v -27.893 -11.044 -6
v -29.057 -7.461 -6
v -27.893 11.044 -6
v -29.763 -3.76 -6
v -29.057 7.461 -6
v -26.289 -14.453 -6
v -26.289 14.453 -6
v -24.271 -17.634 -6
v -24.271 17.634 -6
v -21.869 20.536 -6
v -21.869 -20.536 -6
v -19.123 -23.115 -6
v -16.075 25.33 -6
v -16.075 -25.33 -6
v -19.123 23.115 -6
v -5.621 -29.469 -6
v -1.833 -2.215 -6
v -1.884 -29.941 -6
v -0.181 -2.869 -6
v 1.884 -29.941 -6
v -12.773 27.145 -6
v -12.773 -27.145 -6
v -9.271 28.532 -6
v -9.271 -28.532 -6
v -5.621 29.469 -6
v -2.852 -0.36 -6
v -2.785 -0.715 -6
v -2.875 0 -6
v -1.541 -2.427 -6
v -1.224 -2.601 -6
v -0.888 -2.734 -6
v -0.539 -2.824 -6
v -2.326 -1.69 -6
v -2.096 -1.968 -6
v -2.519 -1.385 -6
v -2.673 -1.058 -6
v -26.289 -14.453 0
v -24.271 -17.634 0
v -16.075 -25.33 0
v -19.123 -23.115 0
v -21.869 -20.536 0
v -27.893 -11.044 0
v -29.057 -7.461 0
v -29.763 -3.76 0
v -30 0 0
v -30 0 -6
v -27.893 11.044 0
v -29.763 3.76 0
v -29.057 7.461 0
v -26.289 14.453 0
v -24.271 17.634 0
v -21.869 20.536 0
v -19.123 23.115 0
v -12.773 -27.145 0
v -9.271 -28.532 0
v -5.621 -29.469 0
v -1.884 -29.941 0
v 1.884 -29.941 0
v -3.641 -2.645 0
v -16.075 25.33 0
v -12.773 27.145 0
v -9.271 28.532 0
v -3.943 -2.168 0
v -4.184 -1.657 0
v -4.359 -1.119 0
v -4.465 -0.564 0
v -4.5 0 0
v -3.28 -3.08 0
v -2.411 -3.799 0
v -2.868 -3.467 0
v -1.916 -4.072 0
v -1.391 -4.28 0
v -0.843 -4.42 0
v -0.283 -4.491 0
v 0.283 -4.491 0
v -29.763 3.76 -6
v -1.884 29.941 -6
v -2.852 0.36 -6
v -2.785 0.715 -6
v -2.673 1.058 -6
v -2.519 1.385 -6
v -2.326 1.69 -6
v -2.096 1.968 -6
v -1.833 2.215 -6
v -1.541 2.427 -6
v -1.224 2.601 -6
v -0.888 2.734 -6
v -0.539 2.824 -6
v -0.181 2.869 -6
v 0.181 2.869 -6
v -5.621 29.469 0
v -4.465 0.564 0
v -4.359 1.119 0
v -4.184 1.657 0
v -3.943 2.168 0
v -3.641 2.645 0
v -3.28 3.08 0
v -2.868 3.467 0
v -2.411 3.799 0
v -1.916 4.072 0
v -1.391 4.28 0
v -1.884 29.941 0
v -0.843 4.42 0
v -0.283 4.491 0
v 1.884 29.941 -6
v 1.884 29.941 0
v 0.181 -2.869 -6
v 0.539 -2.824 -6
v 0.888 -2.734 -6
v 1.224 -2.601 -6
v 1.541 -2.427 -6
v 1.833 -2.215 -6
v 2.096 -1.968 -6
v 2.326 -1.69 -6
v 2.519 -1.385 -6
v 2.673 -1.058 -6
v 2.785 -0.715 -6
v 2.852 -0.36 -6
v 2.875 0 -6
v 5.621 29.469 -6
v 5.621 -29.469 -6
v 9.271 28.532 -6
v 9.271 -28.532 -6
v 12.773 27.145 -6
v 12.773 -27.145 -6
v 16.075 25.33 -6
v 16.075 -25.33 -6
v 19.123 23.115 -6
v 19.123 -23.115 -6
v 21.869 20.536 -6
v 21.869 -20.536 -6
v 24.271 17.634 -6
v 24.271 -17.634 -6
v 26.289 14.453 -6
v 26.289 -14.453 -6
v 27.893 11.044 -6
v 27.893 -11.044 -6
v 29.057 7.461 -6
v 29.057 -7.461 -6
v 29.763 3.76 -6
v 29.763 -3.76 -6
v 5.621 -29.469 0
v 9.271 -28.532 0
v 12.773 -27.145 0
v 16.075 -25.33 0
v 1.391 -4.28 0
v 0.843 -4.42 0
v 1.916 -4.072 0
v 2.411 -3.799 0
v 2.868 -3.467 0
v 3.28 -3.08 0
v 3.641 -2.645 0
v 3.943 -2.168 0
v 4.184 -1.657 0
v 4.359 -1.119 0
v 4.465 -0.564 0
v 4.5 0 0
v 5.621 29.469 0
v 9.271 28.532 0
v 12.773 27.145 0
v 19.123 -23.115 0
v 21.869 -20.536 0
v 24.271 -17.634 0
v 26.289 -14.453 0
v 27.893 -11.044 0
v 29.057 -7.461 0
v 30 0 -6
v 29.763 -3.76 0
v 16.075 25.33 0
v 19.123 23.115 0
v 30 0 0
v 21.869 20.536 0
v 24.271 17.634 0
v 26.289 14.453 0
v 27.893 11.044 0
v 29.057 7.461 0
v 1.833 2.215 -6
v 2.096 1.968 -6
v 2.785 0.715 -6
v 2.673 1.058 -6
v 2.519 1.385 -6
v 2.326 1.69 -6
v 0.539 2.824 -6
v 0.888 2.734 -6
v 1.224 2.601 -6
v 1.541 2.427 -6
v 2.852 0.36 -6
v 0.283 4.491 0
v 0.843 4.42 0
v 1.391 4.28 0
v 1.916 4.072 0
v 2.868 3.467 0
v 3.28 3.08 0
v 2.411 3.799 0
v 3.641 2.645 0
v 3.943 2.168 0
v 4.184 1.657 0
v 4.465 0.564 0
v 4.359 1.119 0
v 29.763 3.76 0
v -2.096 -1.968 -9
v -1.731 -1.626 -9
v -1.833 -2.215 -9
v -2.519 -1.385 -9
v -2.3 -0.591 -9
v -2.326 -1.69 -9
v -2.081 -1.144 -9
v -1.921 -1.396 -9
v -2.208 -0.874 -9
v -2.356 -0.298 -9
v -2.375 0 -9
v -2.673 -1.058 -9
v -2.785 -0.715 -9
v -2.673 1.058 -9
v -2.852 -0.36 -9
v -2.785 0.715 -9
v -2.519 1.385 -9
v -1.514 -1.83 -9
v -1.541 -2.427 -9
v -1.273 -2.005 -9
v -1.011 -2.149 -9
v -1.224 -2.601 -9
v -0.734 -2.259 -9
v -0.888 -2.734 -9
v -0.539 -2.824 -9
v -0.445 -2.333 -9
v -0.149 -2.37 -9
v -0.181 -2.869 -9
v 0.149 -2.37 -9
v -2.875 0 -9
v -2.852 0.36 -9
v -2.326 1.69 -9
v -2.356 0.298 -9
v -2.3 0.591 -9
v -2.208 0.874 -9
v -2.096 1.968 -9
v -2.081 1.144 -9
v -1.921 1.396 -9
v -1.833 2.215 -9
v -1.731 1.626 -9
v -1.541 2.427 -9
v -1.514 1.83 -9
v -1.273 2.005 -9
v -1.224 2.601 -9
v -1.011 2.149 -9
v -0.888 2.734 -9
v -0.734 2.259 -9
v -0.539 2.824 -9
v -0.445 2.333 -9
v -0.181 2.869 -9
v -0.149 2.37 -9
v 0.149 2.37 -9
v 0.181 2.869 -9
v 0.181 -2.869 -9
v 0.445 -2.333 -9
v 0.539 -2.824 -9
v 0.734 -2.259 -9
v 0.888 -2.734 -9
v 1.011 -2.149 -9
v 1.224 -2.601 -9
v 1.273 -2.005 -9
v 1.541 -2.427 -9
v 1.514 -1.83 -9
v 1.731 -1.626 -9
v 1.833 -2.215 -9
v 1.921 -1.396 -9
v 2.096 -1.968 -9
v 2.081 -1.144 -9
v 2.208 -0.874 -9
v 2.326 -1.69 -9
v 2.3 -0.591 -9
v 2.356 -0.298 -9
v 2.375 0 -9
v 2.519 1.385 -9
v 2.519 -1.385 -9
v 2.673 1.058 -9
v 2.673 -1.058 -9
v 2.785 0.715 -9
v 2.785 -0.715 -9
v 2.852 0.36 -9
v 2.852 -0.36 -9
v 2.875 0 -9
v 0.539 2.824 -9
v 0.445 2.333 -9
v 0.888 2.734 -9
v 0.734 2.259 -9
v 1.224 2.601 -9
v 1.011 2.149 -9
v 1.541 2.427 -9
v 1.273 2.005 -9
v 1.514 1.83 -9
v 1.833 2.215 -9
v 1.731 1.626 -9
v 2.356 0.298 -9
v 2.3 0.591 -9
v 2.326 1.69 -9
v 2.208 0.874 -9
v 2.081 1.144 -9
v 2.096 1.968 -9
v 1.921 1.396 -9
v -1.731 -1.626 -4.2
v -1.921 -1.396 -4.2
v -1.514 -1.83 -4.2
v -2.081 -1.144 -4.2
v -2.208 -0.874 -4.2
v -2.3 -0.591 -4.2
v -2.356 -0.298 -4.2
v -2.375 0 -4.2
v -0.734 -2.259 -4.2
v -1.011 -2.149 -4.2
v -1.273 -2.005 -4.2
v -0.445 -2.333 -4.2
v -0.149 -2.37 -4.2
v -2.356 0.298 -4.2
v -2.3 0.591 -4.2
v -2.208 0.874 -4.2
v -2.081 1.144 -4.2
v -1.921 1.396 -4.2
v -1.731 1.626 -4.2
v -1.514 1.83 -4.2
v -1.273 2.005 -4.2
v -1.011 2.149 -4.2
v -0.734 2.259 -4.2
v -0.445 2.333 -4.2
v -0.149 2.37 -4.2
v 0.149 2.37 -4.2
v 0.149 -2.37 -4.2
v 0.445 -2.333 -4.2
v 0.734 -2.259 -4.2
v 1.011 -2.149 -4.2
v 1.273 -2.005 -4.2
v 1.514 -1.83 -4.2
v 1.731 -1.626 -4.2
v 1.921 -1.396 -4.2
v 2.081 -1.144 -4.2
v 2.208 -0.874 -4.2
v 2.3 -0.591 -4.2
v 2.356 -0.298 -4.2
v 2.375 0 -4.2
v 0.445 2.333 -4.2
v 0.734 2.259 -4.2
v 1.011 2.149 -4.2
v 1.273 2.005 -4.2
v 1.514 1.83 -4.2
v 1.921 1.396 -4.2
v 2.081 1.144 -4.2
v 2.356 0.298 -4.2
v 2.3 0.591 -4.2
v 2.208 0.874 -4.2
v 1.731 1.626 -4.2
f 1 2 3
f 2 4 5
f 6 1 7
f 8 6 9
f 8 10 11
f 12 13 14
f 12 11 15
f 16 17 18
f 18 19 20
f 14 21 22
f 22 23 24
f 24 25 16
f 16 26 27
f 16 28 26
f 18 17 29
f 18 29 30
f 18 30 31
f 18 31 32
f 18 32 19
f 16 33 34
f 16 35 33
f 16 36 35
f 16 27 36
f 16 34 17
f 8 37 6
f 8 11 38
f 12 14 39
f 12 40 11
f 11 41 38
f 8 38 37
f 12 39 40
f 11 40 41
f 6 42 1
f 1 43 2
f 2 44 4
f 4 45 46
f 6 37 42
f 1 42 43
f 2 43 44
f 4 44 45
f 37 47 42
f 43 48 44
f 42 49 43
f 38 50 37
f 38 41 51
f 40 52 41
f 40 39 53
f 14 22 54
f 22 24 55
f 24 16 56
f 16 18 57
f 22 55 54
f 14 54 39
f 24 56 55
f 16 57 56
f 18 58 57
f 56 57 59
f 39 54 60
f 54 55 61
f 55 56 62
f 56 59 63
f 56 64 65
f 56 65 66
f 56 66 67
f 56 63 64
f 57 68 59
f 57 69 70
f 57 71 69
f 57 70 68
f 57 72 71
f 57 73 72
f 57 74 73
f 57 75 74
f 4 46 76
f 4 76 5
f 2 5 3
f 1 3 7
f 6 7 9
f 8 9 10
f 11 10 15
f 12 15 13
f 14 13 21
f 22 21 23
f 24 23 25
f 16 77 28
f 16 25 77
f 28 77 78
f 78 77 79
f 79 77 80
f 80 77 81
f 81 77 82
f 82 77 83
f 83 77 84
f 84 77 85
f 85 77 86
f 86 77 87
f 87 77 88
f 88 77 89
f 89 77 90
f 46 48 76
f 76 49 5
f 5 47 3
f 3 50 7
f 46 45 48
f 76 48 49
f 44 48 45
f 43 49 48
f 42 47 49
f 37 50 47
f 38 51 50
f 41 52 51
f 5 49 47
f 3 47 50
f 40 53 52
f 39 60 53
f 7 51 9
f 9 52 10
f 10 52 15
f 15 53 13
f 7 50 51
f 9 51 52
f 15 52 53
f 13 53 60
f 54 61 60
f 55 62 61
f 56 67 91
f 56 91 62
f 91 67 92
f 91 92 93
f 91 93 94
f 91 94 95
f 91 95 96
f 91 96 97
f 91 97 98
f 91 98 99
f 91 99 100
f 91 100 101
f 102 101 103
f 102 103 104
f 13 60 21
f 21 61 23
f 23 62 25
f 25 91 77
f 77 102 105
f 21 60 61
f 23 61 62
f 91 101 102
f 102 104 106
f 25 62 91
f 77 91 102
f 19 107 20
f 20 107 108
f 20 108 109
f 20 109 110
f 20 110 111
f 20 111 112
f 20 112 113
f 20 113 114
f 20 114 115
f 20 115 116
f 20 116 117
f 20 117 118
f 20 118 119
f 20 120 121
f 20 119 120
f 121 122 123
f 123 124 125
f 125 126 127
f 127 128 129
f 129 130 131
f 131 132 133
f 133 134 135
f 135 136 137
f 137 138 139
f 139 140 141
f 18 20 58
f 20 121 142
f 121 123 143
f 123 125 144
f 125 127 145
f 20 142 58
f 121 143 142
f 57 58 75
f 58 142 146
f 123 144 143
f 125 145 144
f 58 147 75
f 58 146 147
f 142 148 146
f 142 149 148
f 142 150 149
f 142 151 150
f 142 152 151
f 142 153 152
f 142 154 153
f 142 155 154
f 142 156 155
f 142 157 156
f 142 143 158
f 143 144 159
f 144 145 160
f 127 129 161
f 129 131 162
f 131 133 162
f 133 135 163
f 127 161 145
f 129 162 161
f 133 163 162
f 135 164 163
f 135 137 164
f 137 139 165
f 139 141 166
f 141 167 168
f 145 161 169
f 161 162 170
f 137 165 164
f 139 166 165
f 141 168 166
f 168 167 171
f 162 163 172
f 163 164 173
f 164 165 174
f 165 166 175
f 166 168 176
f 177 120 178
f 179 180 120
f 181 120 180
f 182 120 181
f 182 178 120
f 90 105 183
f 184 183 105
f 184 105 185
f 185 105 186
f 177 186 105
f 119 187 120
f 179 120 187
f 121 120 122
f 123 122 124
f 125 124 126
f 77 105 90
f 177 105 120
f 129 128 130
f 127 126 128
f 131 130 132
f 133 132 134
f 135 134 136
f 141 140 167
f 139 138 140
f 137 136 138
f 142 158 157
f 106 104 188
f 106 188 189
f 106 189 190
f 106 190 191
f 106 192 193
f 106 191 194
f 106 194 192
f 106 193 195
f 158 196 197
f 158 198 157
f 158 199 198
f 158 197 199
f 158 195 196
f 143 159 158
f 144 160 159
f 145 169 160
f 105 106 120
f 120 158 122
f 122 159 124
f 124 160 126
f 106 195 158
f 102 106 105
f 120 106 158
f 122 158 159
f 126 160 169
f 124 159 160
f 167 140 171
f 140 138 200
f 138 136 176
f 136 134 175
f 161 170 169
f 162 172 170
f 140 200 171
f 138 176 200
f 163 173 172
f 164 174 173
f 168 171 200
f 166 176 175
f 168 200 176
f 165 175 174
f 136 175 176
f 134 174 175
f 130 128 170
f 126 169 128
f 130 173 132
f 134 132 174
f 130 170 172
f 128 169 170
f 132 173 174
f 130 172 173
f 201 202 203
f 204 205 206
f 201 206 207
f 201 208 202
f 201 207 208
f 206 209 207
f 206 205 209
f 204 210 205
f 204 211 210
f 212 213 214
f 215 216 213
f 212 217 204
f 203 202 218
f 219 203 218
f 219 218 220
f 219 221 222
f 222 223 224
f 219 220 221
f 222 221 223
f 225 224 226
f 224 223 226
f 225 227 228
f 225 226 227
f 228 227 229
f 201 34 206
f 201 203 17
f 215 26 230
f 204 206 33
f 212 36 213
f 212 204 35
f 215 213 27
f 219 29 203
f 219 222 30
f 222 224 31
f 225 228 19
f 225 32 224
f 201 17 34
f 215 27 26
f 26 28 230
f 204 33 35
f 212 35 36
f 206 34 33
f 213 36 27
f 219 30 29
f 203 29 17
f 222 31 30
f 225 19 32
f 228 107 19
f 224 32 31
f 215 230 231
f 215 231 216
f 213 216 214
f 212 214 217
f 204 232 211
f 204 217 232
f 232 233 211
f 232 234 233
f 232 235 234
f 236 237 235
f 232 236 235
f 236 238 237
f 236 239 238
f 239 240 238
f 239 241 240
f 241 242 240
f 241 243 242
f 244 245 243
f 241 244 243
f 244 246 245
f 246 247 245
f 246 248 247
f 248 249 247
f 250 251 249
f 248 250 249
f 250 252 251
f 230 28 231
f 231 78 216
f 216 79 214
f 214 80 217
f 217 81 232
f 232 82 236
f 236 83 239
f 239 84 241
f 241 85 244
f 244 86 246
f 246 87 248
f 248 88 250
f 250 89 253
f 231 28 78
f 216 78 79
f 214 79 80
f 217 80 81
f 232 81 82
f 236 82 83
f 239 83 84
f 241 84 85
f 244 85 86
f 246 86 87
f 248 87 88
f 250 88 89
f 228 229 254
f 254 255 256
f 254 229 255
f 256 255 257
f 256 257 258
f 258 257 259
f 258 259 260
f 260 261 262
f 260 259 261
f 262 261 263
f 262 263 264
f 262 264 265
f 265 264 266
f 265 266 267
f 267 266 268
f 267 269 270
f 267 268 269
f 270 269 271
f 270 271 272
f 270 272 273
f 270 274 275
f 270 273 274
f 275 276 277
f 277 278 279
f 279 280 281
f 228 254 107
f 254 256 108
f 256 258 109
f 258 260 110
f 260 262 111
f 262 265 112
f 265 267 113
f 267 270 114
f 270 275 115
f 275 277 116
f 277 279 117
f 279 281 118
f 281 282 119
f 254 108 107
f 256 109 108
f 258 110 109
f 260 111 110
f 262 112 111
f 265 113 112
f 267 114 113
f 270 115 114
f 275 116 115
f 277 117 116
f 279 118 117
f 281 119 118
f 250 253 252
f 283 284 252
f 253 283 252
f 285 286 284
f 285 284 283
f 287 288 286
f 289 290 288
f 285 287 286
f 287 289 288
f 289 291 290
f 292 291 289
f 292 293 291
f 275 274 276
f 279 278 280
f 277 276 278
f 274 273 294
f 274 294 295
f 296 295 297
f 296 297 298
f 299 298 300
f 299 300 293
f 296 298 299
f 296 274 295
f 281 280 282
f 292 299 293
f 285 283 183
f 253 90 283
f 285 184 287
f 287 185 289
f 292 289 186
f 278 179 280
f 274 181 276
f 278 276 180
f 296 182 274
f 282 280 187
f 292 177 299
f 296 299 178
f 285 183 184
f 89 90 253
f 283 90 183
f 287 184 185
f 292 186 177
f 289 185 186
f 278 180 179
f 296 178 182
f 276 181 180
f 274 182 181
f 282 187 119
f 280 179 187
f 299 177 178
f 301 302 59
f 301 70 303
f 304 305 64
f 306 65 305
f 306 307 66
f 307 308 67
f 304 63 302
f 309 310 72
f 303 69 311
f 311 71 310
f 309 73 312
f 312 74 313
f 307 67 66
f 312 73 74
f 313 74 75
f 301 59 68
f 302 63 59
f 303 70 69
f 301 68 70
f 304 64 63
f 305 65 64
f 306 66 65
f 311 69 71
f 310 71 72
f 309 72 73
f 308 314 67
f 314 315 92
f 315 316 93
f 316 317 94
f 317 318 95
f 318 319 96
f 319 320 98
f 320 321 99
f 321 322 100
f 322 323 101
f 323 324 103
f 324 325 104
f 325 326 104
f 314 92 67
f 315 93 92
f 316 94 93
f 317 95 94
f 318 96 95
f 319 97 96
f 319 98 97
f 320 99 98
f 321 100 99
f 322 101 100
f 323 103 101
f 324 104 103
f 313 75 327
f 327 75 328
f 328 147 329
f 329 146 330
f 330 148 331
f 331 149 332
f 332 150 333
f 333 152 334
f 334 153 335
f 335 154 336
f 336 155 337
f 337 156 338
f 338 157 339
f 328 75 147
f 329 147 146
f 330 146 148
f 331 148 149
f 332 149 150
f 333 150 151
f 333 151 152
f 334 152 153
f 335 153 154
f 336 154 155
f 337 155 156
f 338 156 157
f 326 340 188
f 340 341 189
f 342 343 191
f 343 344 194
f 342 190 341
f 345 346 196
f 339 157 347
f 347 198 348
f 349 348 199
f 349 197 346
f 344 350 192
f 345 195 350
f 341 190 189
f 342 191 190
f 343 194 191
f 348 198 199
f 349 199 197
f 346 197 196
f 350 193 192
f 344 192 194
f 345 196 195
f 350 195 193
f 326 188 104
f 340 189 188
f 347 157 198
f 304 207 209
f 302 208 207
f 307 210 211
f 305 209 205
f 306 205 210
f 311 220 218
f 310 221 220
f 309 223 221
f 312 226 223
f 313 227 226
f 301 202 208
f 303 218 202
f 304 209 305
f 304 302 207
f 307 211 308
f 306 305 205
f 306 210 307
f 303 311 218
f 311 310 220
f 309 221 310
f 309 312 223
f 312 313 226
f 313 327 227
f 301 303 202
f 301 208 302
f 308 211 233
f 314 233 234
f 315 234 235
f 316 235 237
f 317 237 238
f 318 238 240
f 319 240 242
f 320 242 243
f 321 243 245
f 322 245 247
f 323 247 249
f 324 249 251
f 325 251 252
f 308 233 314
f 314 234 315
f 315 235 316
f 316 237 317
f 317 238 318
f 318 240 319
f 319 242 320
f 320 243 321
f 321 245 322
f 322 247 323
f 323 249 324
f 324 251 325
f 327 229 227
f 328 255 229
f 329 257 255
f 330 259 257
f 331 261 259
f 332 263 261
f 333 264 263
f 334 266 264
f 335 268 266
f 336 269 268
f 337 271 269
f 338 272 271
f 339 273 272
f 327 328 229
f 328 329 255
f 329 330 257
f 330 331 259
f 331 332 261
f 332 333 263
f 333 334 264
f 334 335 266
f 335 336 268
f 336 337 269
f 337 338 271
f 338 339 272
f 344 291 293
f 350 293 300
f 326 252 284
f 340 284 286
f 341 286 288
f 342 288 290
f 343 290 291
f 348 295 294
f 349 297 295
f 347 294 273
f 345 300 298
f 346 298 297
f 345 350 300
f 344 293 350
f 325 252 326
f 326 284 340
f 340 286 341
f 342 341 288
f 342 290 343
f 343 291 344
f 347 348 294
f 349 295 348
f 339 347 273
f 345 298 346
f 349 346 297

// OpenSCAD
$fn = 50;

difference() {
	union() {
		translate(v = [0, 0, -6.0]) {
			cylinder(h = 6, r = 30.0);
		}
		#translate(v = [0, 0, -9.0]) {
			cylinder(h = 9, r = 2.875);
		}
	}
	union() {
		translate(v = [0, 0, 0]) {
			rotate(a = [0, 0, 0]) {
				difference() {
					union() {
						translate(v = [0, 0, -9.0]) {
							cylinder(h = 9, r = 2.25);
						}
						translate(v = [0, 0, -4.2]) {
							cylinder(h = 4.2, r1 = 2.375, r2 = 4.5);
						}
						translate(v = [0, 0, -9.0]) {
							cylinder(h = 9, r = 2.375);
						}
						translate(v = [0, 0, -9.0]) {
							cylinder(h = 9, r = 2.25);
						}
					}
					union();
				}
			}
		}
	}
}
